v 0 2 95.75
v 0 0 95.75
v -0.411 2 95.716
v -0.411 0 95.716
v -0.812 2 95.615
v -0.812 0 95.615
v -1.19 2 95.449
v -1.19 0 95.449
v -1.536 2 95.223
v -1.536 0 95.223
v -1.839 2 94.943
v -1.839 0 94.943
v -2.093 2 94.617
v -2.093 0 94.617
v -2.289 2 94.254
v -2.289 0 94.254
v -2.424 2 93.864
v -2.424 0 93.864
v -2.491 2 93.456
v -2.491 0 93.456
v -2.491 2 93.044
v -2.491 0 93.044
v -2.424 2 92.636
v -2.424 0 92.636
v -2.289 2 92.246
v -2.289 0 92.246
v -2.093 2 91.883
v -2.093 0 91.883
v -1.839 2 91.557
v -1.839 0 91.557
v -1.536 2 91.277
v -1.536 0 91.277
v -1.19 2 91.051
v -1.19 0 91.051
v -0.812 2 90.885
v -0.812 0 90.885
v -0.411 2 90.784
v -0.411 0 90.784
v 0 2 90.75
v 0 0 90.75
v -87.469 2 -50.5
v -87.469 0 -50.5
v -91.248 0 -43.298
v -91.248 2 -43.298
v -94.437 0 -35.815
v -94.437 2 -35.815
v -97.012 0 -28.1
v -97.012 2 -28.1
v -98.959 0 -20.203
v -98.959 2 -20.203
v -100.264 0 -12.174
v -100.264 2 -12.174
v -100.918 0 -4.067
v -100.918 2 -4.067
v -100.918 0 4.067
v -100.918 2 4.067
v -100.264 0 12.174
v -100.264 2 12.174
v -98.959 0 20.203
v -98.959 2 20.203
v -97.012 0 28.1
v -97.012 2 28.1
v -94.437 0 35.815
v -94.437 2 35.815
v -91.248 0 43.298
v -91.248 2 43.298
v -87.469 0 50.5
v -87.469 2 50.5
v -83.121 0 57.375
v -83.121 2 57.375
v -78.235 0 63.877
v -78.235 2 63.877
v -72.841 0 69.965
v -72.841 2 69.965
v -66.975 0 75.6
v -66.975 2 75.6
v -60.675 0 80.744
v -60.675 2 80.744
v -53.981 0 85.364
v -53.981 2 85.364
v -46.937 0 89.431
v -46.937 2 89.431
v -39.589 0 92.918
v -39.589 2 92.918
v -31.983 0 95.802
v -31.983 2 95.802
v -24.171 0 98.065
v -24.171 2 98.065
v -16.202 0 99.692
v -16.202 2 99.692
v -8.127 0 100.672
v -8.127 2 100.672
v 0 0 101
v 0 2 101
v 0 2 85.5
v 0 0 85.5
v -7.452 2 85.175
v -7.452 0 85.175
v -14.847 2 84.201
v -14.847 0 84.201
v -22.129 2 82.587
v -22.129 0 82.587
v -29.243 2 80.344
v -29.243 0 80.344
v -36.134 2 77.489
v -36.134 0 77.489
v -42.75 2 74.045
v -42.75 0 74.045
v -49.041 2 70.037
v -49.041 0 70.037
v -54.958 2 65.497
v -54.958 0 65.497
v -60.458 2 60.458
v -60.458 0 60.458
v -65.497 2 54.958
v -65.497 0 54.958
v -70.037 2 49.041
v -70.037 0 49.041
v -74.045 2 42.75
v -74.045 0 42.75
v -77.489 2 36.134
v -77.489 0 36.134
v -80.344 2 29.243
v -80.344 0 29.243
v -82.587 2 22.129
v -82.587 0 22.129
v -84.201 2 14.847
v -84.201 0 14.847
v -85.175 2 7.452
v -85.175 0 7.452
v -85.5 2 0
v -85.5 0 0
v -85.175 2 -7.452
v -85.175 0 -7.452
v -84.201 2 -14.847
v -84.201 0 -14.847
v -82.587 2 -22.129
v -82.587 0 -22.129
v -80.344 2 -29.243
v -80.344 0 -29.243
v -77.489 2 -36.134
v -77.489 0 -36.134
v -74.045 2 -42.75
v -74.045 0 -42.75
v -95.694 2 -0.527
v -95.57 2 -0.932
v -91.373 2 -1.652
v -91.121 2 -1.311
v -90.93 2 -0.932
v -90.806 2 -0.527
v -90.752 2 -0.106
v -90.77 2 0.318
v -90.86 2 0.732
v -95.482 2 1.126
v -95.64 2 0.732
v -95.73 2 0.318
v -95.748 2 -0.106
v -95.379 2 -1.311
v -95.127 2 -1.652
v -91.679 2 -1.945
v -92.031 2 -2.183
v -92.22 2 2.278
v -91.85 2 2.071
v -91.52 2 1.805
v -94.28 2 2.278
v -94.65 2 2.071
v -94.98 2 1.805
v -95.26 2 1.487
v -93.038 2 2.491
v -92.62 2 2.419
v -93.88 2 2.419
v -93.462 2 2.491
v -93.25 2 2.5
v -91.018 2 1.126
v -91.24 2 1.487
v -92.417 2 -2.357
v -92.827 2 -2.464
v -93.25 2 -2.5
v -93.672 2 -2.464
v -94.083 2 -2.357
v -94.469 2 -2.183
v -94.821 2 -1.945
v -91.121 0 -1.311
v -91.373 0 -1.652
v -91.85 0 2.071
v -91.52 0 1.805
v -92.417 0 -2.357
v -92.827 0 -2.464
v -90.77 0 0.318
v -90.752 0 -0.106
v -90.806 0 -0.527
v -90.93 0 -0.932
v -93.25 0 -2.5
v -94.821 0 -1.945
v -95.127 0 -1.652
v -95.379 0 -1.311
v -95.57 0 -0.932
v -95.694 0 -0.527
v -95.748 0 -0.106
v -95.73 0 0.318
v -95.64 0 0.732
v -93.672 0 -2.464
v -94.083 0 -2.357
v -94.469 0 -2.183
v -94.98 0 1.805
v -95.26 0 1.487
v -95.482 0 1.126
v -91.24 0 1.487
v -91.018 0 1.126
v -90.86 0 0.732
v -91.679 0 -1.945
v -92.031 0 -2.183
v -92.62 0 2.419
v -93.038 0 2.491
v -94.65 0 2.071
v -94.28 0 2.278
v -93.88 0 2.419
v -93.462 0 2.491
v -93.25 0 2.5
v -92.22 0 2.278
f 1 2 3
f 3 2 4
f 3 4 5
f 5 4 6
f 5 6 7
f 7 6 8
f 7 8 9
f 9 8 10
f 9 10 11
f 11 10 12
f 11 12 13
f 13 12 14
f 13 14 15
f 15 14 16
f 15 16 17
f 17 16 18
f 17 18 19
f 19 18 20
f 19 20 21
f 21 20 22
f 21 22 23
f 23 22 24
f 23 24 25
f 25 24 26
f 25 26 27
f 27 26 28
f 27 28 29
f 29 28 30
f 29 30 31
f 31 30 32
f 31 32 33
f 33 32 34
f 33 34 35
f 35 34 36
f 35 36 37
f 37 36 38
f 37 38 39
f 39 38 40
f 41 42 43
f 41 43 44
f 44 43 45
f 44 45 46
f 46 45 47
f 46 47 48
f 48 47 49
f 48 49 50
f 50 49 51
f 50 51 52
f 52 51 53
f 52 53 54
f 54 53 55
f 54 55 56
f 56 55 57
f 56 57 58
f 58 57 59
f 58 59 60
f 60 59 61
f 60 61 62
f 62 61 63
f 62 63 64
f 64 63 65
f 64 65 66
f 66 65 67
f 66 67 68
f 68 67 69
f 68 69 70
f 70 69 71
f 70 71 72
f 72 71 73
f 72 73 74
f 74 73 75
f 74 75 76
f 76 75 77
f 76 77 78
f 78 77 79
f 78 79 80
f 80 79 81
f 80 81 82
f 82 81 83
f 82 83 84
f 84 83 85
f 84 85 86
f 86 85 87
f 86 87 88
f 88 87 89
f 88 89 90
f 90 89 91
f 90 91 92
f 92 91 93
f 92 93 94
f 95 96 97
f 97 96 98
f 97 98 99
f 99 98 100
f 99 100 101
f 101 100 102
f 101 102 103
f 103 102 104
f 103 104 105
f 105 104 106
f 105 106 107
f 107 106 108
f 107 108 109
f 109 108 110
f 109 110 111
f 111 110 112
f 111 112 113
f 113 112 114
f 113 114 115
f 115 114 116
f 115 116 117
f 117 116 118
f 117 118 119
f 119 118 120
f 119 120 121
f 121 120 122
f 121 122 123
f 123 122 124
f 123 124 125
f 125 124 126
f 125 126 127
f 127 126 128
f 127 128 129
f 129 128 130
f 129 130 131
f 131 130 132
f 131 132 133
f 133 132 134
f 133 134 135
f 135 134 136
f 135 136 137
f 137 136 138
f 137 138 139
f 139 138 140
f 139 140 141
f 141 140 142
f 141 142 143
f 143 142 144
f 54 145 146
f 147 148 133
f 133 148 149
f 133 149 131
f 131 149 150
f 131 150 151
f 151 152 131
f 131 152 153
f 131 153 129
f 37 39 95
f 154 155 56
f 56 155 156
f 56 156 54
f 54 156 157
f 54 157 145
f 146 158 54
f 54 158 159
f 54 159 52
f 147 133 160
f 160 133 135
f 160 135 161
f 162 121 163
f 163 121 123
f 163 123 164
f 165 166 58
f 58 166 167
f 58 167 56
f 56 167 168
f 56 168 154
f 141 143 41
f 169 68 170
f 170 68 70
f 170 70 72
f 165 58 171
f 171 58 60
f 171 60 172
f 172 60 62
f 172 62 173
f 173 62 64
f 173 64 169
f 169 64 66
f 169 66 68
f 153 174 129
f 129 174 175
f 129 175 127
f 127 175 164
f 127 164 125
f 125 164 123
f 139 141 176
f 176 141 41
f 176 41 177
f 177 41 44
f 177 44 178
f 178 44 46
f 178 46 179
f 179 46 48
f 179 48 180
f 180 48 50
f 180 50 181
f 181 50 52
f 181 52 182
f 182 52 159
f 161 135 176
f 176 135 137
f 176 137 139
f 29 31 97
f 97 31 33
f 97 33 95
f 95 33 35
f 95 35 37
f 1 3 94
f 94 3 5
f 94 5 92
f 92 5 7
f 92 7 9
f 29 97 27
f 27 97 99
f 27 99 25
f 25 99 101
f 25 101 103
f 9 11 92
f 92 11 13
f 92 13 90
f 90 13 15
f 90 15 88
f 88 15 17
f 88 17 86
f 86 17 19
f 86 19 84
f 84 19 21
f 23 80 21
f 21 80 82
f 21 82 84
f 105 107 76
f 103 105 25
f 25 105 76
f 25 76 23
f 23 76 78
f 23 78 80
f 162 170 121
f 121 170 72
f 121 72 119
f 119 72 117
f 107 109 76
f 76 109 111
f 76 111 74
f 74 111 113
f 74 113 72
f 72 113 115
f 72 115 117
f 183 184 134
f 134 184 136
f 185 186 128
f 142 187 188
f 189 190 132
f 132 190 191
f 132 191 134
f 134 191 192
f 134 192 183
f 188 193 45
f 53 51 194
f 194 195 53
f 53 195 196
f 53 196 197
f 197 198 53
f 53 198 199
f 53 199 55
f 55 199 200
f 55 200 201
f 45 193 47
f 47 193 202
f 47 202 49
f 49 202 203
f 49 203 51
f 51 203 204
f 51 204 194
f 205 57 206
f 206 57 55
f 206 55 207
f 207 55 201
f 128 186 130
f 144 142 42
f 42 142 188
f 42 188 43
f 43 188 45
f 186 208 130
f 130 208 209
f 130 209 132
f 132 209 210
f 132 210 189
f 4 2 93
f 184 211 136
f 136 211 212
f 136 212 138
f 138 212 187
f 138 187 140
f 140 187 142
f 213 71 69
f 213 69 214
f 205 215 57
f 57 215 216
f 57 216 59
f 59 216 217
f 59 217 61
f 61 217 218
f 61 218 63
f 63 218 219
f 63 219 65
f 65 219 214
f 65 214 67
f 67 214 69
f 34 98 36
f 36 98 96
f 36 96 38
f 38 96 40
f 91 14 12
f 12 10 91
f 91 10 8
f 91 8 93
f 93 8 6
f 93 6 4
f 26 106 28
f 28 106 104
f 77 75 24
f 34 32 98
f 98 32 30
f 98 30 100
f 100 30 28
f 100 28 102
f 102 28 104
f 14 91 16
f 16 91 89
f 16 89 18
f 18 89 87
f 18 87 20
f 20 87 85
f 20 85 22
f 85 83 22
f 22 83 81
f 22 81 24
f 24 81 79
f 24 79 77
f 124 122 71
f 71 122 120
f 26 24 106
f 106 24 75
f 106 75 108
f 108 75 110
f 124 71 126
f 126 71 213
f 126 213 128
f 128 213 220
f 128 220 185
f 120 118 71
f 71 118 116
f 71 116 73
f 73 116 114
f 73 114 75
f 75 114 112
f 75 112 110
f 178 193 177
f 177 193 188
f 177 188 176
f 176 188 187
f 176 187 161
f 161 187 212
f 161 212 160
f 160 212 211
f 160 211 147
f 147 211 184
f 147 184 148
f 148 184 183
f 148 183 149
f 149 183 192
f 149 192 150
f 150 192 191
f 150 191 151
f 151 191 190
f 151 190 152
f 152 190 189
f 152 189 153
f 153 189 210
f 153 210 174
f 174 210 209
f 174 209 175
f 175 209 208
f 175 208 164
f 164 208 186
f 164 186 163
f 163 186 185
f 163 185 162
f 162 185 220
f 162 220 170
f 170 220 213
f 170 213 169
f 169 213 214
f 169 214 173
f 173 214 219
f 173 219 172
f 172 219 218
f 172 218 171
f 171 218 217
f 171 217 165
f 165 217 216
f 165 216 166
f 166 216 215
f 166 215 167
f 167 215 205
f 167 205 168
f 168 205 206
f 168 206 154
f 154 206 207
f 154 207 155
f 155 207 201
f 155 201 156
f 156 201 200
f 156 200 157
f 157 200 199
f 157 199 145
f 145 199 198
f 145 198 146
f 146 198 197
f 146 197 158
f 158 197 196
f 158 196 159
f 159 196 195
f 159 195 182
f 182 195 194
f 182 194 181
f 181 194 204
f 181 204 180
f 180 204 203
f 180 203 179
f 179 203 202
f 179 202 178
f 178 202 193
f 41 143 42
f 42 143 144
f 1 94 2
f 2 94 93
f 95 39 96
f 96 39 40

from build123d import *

# Parameters (mm, degrees)
SKETCH_1_R          = 101
SKETCH_1_R_2        = 85.5
SKETCH_1_R_3        = 2.5
EXTRUDE_2_DEPTH     = 2
SKETCH_4_R          = 2.5
CUT_EXTRUDE_2_DEPTH = 2
SKETCH_5_R          = 2.5
CUT_EXTRUDE_3_DEPTH = 2


with BuildPart() as part:
    # 草图1 → 凸台-拉伸2 (new body)
    with BuildSketch(Plane(origin=(0, 0, 0), x_dir=(1, 0, 0), z_dir=(0, 1, 0))):
        with Locations(Location((0, 0, 0), (0, 0, 270))):
            Circle(SKETCH_1_R)
        with Locations(Location((0, 0, 0), (0, 0, 270))):
            Circle(SKETCH_1_R_2, mode=Mode.SUBTRACT)
        with Locations(Location((0, 93.25, 0), (0, 0, 270))):
            Circle(SKETCH_1_R_3, mode=Mode.SUBTRACT)
        with Locations(Location((93.25, 0, 0), (0, 0, 270))):
            Circle(SKETCH_1_R_3, mode=Mode.SUBTRACT)
        with Locations(Location((0, -93.25, 0), (0, 0, 270))):
            Circle(SKETCH_1_R_3, mode=Mode.SUBTRACT)
        with Locations(Location((-93.25, 0, 0), (0, 0, 270))):
            Circle(SKETCH_1_R_3, mode=Mode.SUBTRACT)
    extrude(amount=EXTRUDE_2_DEPTH)

    # 草图4 → 切除-拉伸2 (cut)
    with BuildSketch(Plane.XZ):
        with BuildLine():
            Line((87.468565782, -50.5), (74.045172024, -42.75))
            ThreePointArc((74.045172024, -42.75), (0, -85.5), (-74.045172024, -42.75))
            Line((-74.045172024, -42.75), (-87.468565782, -50.5))
            ThreePointArc((-87.468565782, -50.5), (0, -101), (87.468565782, -50.5))
        make_face()
        with Locations((0, -93.25)):
            Circle(SKETCH_4_R, mode=Mode.SUBTRACT)
    extrude(amount=-CUT_EXTRUDE_2_DEPTH, mode=Mode.SUBTRACT)

    # 草图5 → 切除-拉伸3 (cut)
    with BuildSketch(Plane.XZ):
        with BuildLine():
            Line((0, 90.75), (0, 85.5))
            ThreePointArc((0, 85.5), (74.045172024, 42.75), (74.045172024, -42.75))
            Line((74.045172024, -42.75), (87.468565782, -50.5))
            ThreePointArc((87.468565782, -50.5), (97.558508455, -26.140723555), (101, 0))
            ThreePointArc((101, 0), (71.4177849, 71.4177849), (0, 101))
            Line((0, 101), (0, 95.75))
            ThreePointArc((0, 95.75), (1.767766953, 95.017766953), (2.5, 93.25))
            ThreePointArc((2.5, 93.25), (1.767766953, 91.482233047), (0, 90.75))
        make_face()
        with Locations((93.25, 0)):
            Circle(SKETCH_5_R, mode=Mode.SUBTRACT)
    extrude(amount=-CUT_EXTRUDE_3_DEPTH, mode=Mode.SUBTRACT)


solid = part.part
